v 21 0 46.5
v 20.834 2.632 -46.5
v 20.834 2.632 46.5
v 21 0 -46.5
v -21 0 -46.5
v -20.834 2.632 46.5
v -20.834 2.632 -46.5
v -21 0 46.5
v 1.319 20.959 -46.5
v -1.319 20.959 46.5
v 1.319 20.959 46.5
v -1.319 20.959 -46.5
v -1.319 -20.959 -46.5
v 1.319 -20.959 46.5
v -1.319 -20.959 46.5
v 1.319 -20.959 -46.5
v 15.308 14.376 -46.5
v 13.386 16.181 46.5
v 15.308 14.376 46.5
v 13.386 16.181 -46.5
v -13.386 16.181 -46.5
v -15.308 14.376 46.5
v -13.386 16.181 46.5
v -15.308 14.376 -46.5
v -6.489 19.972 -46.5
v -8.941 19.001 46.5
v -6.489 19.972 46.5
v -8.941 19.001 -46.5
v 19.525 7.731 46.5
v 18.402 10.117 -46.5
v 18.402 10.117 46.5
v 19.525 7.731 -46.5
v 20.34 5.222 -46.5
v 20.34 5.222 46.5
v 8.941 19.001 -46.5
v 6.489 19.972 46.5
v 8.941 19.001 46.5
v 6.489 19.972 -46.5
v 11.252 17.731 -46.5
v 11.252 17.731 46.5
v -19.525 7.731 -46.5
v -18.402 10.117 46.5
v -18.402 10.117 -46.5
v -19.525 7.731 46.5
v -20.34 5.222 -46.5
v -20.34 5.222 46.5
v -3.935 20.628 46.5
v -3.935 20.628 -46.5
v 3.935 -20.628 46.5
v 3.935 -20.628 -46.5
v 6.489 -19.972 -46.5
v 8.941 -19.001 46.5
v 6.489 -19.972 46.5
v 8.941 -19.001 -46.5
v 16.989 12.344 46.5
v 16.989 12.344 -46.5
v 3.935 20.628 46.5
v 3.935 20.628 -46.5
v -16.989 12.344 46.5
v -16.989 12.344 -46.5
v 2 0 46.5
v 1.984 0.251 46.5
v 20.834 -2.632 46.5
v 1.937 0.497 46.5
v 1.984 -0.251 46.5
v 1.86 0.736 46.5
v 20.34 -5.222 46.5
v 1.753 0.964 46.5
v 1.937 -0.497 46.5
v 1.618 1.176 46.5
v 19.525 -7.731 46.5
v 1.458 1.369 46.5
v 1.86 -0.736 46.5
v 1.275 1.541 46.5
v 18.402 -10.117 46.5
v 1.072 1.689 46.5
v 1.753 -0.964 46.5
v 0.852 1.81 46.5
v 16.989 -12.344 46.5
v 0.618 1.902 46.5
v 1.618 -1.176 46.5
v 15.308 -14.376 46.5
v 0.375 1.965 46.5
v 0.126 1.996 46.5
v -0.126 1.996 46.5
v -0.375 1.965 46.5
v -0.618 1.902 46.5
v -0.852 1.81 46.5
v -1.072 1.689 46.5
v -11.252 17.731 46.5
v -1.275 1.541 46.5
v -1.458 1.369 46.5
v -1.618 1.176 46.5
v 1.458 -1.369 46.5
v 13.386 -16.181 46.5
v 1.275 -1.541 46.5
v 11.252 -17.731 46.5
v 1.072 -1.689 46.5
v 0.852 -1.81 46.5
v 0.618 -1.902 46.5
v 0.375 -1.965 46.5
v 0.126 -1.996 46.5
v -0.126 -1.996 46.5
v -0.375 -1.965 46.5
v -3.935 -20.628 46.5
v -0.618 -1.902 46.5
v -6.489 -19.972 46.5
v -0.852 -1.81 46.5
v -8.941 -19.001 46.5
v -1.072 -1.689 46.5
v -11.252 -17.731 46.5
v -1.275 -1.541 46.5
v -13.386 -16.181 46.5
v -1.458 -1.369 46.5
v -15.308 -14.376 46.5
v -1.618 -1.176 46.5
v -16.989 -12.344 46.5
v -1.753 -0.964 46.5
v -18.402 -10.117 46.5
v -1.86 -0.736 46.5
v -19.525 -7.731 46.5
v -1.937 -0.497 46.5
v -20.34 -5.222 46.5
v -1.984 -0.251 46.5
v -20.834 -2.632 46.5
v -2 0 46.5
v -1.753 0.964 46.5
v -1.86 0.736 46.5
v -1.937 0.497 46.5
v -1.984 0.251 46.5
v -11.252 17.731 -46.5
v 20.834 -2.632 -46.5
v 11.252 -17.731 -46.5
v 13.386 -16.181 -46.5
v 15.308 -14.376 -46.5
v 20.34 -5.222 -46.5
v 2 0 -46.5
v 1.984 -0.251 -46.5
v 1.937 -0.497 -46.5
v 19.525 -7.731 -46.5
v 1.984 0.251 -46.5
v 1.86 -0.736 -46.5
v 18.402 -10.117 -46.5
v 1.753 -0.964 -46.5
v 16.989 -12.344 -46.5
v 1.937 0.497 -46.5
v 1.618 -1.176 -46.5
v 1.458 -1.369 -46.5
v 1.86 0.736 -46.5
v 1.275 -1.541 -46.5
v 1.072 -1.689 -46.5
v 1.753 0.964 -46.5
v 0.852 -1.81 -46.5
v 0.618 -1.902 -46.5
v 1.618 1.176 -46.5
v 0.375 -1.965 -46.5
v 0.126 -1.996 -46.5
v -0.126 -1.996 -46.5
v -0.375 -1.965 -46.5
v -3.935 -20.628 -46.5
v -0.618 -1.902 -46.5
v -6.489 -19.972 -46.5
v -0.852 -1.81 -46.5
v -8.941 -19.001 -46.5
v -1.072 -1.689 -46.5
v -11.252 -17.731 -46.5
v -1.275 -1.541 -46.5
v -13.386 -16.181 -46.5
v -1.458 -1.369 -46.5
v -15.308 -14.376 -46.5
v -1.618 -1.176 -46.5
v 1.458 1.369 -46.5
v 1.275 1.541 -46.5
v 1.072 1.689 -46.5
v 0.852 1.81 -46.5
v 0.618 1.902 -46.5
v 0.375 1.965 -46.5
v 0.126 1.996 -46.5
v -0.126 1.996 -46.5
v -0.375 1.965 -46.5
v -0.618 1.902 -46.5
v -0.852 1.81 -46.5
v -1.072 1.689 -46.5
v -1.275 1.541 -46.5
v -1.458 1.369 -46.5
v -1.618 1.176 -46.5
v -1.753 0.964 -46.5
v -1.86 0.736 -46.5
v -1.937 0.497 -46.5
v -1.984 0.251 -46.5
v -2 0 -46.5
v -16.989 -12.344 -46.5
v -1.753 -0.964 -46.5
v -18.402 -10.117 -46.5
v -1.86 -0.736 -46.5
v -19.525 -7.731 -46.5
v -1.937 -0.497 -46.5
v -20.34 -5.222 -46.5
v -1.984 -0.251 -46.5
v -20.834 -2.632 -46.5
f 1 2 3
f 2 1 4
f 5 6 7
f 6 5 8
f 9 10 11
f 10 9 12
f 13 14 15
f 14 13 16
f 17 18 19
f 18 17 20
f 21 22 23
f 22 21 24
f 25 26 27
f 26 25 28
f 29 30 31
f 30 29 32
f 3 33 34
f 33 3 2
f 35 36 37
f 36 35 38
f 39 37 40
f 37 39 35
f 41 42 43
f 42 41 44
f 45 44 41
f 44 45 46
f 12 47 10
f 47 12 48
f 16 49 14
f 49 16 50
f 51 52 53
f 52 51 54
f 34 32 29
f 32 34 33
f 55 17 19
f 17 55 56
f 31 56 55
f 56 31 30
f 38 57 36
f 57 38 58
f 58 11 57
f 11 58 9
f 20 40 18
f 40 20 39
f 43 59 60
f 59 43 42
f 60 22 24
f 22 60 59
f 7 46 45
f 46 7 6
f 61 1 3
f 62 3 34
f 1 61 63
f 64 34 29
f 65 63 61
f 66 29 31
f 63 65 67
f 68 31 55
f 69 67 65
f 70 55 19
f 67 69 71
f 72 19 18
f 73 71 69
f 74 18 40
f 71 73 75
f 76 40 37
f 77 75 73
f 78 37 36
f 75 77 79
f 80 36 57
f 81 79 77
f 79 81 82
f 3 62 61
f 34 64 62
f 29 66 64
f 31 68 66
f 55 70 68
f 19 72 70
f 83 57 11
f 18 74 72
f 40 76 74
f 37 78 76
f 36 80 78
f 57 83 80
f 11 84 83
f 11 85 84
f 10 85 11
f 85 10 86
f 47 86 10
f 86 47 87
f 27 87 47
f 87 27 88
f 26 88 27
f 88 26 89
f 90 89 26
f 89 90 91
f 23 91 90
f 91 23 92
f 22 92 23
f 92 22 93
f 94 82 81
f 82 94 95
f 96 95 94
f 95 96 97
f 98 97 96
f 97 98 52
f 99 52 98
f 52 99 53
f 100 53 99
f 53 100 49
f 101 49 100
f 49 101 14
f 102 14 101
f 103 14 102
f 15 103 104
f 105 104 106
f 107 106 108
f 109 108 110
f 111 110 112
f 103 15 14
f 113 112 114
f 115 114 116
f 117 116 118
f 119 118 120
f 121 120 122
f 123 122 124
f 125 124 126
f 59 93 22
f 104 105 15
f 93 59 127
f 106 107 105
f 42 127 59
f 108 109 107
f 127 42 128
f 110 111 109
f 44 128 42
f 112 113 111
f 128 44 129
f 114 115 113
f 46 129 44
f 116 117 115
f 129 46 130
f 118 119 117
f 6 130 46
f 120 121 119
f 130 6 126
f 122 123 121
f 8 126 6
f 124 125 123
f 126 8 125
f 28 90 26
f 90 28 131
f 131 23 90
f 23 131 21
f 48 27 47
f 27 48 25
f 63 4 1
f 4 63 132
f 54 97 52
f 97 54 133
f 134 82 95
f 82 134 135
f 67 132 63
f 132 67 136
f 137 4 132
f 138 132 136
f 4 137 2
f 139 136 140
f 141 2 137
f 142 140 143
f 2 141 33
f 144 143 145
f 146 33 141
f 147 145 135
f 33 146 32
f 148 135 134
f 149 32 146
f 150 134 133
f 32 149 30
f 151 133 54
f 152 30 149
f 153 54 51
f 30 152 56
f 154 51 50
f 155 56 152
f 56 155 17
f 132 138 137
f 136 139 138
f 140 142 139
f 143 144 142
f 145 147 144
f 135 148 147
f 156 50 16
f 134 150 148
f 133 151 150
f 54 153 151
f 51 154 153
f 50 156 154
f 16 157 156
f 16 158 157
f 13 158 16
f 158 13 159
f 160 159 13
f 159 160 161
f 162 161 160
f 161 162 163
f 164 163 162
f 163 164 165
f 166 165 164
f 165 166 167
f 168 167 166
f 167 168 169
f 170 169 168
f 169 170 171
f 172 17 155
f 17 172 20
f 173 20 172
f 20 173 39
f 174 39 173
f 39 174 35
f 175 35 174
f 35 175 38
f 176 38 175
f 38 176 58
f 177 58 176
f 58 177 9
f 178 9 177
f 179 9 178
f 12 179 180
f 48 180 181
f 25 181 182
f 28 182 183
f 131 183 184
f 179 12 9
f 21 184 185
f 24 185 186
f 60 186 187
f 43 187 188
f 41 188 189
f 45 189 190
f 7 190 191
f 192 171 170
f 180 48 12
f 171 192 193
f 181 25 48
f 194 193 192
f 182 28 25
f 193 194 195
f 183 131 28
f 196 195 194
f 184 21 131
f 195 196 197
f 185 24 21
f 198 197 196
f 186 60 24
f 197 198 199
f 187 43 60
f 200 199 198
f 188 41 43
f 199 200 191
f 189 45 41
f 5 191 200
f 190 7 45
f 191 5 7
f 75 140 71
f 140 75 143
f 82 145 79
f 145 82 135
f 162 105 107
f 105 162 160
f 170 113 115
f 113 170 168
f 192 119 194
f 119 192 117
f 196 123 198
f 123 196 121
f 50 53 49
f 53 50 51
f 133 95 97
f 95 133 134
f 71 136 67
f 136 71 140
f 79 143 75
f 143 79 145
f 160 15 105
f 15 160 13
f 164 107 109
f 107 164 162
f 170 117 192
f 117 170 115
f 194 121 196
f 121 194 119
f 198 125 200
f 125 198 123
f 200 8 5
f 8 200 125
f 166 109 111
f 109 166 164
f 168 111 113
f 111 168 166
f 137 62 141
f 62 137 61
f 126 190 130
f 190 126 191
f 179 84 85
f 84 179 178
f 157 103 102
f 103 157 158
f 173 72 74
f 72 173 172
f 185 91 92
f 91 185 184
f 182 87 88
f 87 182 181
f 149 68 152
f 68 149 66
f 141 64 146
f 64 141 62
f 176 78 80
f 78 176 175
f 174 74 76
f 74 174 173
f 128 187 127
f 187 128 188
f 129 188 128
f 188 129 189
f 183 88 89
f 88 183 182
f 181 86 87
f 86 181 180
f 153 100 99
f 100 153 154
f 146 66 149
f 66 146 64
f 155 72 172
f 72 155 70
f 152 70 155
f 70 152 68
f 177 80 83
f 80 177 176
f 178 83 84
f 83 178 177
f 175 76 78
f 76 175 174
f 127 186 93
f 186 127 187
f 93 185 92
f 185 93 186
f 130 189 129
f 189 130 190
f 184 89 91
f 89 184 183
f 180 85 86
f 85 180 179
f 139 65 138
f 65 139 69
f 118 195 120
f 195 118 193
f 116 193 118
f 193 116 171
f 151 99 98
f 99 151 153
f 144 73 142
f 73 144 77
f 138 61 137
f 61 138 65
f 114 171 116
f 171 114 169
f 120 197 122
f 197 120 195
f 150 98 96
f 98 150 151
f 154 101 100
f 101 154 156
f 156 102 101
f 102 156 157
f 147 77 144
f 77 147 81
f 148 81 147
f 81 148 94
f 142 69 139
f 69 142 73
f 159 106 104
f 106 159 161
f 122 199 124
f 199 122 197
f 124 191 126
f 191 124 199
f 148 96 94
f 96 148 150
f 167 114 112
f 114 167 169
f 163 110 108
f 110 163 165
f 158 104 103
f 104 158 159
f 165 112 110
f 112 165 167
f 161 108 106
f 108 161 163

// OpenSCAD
$fn = 50;


difference() {
	union() {
		translate(v = [0, 0, -46.5000000000]) {
			cylinder(h = 93, r = 21.0000000000);
		}
	}
	union() {
		translate(v = [0, 0, -100.0000000000]) {
			cylinder(h = 200, r = 2);
		}
	}
}
